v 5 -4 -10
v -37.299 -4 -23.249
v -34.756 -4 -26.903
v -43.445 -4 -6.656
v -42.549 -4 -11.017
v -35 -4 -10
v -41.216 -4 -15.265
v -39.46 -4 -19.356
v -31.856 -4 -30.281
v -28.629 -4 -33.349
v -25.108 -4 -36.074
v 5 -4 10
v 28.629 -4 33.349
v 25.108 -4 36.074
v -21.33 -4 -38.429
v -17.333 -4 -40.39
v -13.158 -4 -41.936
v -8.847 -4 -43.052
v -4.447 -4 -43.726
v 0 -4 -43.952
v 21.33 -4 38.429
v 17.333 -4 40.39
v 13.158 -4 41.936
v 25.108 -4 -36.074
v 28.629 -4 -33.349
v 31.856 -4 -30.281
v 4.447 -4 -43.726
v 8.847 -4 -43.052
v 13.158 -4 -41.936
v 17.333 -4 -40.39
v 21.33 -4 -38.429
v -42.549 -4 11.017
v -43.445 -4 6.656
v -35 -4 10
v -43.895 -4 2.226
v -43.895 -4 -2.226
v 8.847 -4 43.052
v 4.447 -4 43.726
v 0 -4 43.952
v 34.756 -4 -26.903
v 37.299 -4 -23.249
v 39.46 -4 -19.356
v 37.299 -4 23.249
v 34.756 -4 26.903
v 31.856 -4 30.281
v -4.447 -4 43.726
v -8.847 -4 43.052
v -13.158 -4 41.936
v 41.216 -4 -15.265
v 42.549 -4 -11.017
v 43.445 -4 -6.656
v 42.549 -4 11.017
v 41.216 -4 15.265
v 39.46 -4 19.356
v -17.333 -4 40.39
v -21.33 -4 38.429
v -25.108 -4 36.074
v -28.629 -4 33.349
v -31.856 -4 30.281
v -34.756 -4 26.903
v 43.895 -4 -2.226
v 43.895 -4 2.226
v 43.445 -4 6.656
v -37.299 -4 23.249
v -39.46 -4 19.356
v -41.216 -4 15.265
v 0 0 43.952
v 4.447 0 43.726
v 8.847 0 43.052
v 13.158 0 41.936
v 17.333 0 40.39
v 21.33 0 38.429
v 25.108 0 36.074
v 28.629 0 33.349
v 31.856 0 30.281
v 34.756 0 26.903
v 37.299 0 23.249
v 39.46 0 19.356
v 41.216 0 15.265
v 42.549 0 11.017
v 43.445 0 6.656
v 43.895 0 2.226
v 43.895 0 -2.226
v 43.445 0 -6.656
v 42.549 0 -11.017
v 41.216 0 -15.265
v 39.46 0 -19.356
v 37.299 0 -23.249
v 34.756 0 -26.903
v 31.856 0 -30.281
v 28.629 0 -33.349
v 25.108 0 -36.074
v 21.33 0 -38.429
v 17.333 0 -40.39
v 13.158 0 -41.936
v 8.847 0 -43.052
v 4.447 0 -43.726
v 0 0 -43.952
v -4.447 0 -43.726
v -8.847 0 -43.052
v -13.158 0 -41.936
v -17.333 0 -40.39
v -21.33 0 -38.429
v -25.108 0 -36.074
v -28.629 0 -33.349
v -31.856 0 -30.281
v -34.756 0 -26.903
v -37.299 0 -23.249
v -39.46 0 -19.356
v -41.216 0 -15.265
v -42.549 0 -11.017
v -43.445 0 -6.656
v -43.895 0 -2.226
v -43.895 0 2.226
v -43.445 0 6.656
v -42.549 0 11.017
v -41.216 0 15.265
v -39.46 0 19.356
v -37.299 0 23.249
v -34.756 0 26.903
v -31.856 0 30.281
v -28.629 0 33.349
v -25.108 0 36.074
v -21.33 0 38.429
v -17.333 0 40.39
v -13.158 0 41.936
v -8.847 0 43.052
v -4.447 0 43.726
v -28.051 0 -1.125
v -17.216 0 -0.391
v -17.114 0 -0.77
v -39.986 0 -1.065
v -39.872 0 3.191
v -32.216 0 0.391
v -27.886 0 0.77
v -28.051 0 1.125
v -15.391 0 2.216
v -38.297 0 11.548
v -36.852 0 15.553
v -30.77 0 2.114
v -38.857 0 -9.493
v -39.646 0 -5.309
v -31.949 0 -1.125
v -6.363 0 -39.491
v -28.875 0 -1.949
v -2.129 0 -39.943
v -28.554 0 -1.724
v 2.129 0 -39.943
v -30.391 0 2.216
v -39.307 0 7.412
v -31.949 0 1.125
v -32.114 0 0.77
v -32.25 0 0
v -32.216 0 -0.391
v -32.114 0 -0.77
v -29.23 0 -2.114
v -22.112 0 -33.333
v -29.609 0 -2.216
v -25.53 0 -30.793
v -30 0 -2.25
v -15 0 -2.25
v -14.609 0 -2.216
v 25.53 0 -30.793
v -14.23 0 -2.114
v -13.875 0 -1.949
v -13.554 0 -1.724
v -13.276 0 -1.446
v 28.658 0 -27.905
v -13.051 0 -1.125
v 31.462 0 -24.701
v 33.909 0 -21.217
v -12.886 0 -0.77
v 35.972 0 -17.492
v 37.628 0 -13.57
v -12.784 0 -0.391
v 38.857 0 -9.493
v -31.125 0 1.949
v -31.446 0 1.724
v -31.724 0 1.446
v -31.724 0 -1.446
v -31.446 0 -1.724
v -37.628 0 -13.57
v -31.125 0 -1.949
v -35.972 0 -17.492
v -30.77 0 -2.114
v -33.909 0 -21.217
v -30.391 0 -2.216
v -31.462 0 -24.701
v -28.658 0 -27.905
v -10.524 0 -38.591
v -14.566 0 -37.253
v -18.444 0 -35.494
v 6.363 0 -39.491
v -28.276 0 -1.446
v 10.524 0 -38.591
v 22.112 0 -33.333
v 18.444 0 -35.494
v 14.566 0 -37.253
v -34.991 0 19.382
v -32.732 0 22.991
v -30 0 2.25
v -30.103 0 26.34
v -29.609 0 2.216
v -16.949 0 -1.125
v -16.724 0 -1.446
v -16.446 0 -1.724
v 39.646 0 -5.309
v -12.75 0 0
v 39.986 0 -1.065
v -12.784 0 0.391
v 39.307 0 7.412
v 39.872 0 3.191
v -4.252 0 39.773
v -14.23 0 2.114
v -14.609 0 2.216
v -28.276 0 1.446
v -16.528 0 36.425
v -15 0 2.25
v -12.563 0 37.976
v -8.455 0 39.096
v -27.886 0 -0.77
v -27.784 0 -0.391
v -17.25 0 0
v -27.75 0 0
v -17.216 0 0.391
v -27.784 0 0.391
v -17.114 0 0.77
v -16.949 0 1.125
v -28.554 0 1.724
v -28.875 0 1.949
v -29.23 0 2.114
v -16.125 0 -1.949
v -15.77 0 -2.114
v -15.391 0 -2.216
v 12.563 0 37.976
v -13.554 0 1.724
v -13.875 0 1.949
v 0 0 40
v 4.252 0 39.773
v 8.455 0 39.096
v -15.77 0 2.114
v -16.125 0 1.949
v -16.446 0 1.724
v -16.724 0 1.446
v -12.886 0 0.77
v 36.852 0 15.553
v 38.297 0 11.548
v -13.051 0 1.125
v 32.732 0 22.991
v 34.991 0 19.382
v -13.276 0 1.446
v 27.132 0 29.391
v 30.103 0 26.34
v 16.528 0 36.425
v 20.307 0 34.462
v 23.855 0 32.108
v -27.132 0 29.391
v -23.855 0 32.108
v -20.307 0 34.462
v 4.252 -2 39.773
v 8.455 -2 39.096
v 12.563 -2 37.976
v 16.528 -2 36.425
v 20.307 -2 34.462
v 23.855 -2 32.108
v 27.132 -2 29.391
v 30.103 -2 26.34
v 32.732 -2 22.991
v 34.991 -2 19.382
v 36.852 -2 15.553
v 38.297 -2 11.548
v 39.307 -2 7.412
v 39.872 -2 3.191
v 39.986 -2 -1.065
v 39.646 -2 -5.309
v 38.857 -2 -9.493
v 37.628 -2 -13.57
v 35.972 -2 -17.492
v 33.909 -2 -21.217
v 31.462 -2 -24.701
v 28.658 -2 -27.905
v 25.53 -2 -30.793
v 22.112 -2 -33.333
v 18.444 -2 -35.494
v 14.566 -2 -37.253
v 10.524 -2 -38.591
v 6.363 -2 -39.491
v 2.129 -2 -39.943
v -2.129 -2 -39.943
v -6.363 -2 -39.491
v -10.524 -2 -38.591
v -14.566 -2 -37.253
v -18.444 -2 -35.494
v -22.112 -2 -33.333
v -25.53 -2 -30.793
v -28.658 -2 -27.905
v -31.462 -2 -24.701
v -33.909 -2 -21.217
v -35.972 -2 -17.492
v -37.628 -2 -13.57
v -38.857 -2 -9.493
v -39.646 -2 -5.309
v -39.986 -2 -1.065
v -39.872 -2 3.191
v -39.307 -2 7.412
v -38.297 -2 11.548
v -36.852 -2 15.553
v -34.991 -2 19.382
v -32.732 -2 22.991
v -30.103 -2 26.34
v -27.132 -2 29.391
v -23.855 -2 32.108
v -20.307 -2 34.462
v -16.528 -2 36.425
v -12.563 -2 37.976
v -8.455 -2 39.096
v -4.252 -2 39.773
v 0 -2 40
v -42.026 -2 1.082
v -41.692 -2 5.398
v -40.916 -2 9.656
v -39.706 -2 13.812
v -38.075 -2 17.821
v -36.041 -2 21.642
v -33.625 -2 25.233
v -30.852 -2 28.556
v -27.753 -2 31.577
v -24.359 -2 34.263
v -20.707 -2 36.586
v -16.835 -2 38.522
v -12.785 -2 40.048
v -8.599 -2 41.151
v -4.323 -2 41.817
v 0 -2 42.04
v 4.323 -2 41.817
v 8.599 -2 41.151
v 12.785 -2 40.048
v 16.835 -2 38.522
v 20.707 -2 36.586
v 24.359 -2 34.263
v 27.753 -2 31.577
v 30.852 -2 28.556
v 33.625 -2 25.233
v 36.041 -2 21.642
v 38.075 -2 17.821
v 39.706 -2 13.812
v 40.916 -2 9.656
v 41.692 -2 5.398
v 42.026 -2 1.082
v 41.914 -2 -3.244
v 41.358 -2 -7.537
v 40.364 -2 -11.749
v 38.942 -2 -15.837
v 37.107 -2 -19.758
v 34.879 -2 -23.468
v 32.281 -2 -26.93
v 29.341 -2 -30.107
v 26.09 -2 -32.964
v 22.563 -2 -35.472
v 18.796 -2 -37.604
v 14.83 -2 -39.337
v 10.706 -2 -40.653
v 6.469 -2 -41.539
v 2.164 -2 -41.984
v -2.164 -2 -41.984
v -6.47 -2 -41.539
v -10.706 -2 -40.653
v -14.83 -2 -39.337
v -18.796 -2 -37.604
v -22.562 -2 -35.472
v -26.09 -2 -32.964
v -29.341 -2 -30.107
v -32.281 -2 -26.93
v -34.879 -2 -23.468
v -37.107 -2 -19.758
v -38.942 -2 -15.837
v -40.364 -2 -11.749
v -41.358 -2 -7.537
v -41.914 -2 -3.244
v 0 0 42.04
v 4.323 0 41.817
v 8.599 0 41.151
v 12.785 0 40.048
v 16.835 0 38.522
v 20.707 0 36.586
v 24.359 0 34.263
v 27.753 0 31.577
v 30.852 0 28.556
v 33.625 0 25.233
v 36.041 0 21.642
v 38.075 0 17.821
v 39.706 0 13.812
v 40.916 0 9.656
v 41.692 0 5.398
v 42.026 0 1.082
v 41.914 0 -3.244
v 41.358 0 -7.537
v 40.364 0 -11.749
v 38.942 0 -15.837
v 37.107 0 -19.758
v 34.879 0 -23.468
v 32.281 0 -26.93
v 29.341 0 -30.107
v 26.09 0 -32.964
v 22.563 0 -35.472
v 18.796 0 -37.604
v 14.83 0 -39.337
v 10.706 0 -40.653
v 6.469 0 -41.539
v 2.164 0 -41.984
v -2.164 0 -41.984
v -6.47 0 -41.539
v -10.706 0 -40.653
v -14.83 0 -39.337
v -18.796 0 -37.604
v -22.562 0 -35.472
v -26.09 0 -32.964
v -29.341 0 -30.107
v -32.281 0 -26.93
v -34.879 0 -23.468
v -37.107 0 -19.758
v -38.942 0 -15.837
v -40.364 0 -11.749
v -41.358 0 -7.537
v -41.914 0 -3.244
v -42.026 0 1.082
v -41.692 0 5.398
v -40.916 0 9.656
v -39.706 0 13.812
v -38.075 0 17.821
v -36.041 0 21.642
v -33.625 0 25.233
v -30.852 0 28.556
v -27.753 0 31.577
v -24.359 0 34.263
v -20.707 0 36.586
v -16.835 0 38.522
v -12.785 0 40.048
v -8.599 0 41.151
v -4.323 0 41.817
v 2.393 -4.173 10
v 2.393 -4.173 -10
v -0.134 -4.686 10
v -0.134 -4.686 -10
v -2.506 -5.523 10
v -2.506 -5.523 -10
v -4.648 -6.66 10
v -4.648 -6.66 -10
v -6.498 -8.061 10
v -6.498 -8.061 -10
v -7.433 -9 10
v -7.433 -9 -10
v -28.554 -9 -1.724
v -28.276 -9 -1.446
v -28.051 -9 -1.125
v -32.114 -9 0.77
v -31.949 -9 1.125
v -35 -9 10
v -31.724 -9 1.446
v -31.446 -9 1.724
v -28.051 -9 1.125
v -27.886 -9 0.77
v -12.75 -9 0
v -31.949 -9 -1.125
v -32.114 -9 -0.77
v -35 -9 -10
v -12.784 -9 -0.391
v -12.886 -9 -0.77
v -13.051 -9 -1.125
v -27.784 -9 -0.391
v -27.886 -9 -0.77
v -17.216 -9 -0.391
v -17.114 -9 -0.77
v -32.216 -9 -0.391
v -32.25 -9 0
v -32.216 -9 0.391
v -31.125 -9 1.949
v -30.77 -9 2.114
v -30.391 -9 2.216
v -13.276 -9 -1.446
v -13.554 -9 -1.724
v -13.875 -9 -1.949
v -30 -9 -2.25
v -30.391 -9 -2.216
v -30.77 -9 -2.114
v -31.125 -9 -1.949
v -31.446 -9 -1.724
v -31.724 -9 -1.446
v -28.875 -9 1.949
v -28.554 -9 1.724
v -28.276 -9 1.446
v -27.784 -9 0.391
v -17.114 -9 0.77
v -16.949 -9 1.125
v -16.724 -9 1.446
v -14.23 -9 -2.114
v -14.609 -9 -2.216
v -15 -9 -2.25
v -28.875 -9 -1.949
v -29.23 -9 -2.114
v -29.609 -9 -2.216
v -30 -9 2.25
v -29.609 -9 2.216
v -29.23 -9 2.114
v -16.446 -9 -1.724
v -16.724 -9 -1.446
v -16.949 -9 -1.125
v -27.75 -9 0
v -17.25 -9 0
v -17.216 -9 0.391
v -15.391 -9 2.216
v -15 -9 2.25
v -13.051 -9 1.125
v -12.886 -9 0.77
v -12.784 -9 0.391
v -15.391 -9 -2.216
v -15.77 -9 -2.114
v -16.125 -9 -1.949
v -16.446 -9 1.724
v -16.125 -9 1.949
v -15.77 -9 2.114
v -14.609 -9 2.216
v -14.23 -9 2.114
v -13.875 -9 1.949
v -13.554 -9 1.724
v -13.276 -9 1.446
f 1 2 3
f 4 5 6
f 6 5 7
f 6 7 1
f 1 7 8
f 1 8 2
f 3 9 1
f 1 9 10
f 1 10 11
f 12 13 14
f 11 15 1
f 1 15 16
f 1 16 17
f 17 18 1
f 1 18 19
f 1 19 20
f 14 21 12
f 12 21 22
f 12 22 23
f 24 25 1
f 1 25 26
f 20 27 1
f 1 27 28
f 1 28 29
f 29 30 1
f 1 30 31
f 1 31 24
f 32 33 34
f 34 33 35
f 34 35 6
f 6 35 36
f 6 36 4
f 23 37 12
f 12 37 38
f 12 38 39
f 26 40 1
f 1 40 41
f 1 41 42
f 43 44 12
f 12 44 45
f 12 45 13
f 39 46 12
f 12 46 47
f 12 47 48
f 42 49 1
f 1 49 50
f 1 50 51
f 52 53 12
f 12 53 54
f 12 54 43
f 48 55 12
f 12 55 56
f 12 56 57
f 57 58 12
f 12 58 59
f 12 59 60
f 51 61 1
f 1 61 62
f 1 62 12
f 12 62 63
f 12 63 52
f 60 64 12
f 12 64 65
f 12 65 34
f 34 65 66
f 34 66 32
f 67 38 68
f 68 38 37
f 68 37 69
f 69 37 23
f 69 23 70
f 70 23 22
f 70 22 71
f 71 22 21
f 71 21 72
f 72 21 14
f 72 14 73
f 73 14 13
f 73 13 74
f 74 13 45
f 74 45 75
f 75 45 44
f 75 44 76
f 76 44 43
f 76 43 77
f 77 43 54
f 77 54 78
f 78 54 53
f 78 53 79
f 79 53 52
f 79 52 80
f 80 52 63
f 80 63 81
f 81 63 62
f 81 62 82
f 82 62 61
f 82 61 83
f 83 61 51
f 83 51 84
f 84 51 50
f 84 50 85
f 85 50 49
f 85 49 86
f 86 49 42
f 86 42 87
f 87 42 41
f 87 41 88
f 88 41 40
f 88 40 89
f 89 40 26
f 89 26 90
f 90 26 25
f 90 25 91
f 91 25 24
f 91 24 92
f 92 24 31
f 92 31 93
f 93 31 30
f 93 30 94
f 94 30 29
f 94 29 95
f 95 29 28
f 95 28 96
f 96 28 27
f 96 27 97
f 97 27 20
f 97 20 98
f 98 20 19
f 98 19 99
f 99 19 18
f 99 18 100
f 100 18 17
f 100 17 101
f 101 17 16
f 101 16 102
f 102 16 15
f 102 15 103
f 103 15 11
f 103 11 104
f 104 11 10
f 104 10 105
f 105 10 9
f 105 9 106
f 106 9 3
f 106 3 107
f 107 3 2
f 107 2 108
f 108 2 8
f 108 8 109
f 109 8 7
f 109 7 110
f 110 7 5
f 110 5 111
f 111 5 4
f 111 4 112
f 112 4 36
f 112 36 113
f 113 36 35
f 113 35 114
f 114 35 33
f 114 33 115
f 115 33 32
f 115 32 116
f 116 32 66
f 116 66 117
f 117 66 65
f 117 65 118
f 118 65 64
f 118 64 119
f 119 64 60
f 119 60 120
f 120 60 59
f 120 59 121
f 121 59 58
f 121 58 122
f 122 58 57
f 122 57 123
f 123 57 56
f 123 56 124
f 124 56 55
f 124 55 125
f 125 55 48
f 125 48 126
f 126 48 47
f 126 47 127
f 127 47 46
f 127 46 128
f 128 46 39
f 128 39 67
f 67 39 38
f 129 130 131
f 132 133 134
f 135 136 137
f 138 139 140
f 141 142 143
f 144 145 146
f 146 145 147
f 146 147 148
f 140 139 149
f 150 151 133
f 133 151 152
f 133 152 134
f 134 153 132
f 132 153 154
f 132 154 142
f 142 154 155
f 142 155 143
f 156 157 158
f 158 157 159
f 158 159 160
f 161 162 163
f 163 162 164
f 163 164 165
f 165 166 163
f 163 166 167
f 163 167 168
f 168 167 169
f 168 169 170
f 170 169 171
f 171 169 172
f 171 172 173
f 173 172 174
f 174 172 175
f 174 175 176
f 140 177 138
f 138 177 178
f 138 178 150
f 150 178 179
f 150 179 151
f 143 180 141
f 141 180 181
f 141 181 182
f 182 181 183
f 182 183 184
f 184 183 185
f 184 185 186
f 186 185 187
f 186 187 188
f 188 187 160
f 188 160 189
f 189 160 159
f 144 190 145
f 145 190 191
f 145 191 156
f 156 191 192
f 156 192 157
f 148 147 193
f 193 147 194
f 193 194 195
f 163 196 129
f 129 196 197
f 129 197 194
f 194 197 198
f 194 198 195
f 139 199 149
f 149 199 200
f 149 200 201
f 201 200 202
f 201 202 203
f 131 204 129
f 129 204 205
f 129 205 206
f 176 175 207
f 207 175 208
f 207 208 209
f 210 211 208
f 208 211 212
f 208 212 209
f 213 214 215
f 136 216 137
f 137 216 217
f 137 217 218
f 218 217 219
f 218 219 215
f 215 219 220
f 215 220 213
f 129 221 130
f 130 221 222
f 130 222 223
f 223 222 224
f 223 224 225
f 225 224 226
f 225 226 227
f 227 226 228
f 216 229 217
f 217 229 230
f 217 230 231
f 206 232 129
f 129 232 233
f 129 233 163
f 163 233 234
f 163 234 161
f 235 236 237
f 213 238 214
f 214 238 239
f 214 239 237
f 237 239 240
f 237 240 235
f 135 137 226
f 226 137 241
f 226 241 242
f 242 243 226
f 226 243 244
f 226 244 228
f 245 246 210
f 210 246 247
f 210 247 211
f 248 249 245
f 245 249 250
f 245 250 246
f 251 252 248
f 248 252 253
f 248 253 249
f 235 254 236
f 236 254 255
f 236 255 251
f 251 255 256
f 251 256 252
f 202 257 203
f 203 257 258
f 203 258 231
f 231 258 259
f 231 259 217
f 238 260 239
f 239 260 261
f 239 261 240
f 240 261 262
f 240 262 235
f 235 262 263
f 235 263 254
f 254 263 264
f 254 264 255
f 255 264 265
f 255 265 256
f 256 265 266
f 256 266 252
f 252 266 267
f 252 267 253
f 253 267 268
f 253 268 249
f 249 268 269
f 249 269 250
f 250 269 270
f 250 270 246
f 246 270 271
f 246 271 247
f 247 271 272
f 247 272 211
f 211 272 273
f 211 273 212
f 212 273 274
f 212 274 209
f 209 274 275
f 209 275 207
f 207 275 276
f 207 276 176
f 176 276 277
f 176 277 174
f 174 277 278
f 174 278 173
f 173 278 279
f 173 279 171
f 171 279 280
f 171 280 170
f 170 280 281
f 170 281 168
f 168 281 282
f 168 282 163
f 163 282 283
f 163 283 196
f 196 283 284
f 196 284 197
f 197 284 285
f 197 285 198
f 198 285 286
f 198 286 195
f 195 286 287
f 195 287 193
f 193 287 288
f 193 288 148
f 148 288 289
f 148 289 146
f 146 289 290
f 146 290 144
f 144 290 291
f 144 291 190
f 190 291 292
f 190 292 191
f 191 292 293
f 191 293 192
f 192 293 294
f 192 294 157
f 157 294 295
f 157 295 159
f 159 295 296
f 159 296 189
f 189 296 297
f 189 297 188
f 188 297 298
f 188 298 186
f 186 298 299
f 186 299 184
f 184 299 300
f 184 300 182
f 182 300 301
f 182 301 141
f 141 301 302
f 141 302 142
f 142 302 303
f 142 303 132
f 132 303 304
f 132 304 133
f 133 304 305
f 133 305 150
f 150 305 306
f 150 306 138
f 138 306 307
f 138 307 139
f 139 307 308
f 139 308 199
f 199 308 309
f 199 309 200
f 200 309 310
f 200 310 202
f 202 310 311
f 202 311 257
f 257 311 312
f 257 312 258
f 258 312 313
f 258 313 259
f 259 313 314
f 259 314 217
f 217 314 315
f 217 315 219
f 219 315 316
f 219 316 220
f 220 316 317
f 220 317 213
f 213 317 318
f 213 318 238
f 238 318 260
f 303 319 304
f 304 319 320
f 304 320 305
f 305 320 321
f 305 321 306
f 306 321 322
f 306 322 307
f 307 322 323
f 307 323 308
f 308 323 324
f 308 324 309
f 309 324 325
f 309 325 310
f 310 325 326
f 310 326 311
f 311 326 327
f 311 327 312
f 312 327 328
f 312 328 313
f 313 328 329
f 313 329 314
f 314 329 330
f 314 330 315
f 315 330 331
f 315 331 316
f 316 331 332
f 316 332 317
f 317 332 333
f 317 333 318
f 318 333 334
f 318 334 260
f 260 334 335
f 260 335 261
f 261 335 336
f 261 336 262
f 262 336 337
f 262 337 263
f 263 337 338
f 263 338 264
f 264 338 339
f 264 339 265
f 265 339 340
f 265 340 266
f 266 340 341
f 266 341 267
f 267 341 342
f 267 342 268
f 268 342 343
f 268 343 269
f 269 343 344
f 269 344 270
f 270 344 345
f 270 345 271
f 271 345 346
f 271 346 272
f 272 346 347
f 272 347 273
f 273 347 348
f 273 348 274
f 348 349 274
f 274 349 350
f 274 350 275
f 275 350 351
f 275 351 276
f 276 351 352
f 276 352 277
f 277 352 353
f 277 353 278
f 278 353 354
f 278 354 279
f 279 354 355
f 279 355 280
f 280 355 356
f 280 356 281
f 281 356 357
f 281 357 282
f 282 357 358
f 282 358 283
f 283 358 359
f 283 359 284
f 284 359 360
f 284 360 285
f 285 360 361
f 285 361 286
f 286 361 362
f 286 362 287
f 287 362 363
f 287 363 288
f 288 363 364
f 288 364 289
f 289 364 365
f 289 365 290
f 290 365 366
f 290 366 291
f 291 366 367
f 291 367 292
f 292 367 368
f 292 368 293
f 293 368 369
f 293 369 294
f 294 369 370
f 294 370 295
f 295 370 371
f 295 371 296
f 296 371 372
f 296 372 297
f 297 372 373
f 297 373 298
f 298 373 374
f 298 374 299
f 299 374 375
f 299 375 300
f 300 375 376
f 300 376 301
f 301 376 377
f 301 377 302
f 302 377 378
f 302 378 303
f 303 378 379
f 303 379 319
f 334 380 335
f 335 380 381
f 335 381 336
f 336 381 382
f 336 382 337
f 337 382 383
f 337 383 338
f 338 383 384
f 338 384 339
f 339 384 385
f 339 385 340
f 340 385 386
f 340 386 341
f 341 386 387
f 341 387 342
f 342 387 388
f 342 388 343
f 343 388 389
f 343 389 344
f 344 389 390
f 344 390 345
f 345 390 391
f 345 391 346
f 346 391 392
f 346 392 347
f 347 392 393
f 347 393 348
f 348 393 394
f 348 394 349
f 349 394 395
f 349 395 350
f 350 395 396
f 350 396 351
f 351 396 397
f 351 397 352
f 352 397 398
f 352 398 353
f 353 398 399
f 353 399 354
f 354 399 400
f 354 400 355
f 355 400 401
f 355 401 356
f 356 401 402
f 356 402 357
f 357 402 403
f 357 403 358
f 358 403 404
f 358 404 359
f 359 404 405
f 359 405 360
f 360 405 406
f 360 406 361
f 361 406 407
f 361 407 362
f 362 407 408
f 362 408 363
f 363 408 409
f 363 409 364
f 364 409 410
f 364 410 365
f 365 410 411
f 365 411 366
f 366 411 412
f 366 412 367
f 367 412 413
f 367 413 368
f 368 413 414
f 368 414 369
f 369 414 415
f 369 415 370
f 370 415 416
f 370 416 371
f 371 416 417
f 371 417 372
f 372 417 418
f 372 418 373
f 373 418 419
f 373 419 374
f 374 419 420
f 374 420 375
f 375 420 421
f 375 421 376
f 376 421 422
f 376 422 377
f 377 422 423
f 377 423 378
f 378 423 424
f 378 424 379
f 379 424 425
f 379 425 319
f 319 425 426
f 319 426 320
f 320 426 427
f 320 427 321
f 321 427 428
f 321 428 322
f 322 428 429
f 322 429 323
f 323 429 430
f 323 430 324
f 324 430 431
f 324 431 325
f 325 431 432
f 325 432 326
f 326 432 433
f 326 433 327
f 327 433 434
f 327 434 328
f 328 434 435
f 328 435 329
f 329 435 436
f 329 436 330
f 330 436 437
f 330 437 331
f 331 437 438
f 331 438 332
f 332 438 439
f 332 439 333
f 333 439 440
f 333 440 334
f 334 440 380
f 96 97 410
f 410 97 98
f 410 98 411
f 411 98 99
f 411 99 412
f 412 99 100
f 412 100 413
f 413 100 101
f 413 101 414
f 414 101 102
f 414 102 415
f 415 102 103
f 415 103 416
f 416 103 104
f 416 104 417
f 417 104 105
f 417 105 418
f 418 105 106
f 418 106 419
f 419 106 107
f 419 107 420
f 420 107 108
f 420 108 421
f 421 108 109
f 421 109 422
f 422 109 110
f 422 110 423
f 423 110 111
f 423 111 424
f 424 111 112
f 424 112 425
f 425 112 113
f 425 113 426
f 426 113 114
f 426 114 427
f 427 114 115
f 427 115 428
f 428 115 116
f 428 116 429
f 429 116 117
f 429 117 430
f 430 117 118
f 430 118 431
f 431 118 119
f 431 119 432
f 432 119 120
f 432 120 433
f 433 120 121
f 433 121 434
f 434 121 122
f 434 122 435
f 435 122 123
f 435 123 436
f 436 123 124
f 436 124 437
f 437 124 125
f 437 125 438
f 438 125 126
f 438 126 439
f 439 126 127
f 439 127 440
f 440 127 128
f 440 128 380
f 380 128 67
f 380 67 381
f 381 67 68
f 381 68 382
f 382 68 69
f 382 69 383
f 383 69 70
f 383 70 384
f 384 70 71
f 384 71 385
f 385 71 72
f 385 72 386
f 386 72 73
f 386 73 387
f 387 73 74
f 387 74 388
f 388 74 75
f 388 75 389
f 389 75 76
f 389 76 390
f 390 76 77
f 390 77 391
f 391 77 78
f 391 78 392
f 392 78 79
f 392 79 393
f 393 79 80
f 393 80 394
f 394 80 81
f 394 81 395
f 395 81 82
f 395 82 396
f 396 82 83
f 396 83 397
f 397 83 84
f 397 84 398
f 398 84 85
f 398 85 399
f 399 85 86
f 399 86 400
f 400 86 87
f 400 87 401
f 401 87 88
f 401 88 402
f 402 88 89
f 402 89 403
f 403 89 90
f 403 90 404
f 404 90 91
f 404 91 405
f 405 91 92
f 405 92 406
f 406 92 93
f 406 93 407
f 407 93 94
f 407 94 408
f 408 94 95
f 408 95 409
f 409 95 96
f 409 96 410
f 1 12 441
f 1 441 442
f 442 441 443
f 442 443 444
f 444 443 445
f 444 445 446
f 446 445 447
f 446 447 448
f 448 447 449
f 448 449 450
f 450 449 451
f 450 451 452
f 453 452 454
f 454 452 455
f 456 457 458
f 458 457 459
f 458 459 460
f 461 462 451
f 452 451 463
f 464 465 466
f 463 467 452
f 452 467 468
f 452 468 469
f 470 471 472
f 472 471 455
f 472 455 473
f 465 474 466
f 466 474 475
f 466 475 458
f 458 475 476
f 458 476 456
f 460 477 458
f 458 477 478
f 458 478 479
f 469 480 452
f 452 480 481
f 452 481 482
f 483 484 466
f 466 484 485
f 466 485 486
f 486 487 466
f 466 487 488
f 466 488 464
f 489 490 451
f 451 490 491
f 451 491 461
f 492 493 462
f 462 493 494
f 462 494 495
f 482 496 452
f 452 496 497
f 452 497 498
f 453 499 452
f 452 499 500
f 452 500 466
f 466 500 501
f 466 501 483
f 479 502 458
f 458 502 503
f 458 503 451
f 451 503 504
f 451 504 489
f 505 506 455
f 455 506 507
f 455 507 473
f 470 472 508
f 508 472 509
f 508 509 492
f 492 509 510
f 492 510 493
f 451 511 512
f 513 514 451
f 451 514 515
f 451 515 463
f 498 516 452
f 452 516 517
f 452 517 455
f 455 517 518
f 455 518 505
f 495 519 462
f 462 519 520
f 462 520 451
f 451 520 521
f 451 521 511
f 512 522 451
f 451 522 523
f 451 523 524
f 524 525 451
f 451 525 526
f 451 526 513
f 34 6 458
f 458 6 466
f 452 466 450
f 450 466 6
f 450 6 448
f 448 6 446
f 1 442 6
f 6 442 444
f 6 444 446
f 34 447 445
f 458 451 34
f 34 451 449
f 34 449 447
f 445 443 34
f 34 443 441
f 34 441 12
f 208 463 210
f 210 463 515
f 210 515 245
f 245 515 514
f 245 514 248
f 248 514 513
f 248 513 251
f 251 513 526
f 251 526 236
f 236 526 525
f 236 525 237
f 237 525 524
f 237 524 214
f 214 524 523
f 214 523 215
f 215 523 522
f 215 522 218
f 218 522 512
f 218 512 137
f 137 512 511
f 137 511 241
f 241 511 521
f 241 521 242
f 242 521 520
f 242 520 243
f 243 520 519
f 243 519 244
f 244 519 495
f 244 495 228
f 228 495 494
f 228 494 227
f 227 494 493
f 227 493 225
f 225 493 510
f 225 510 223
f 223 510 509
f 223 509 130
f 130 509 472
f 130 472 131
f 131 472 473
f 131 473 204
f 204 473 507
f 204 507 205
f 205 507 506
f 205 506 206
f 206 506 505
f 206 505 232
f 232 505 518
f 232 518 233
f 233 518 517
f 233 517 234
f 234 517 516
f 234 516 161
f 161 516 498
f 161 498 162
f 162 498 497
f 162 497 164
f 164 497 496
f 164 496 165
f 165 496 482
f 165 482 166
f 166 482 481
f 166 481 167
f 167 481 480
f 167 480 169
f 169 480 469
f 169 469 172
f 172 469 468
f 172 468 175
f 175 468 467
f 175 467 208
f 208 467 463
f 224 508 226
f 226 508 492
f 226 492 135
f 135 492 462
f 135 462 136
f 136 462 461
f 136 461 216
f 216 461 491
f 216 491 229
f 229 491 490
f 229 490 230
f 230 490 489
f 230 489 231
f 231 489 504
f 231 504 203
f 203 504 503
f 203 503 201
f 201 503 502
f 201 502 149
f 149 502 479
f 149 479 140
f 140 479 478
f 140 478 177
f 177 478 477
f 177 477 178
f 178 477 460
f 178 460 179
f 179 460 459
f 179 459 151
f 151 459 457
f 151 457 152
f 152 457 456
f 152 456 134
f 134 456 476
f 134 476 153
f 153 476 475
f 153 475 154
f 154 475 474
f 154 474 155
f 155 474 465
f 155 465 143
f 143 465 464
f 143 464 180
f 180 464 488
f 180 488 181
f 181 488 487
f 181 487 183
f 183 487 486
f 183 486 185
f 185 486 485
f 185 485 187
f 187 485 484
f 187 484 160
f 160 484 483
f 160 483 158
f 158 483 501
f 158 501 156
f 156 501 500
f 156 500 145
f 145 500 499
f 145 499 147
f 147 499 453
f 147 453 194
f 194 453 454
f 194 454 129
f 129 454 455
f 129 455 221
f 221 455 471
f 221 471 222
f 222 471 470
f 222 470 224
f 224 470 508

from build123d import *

# Parameters (mm, degrees)
BOSS_EXTRUDE1_DEPTH      = 10
BOSS_EXTRUDE1_DEPTH_BACK = 10
SKETCH4_R                = 2.25
CUT_EXTRUDE1_DEPTH       = 16


with BuildPart() as part:
    # Sketch2 → Revolve1 (revolve)
    with BuildSketch(Plane.XY):
        Polygon((-42.039607805, -2), (-42.039607805, 0), (-43.951704155, 0), (-43.951704155, -4), (-34.016778293, -4), (0, -4), (0, 0), (-40, 0), (-40, -2), align=None)
    revolve(axis=Axis((0, 100, 0), (0, -1, 0)))

    # Sketch3 → Boss-Extrude1 (add, two sides: drawn at the far end of the back side and taken through both)
    with BuildSketch(Plane.XY.offset(-BOSS_EXTRUDE1_DEPTH_BACK)):
        with BuildLine():
            add(Edge.make_bspline(
                [(5, -4), (-2.972410052, -4), (-7.432745191, -9)],
                knots=[1.570796327, 1.570796327, 1.570796327, 2.547844784, 2.547844784, 2.547844784], degree=2, weights=[1, 0.883026434, 1]))
            Line((5, -4), (-35, -4))
            Line((-35, -4), (-35, -9))
            Line((-35, -9), (-7.432745191, -9))
        make_face()
    extrude(amount=BOSS_EXTRUDE1_DEPTH + BOSS_EXTRUDE1_DEPTH_BACK)

    # Sketch4 → Cut-Extrude1 (cut)
    with BuildSketch(Plane.XZ.offset(9)):
        with Locations((-30, 0)):
            Circle(SKETCH4_R)
        with Locations((-15, 0)):
            Circle(SKETCH4_R)
    extrude(amount=-CUT_EXTRUDE1_DEPTH, mode=Mode.SUBTRACT)


solid = part.part
